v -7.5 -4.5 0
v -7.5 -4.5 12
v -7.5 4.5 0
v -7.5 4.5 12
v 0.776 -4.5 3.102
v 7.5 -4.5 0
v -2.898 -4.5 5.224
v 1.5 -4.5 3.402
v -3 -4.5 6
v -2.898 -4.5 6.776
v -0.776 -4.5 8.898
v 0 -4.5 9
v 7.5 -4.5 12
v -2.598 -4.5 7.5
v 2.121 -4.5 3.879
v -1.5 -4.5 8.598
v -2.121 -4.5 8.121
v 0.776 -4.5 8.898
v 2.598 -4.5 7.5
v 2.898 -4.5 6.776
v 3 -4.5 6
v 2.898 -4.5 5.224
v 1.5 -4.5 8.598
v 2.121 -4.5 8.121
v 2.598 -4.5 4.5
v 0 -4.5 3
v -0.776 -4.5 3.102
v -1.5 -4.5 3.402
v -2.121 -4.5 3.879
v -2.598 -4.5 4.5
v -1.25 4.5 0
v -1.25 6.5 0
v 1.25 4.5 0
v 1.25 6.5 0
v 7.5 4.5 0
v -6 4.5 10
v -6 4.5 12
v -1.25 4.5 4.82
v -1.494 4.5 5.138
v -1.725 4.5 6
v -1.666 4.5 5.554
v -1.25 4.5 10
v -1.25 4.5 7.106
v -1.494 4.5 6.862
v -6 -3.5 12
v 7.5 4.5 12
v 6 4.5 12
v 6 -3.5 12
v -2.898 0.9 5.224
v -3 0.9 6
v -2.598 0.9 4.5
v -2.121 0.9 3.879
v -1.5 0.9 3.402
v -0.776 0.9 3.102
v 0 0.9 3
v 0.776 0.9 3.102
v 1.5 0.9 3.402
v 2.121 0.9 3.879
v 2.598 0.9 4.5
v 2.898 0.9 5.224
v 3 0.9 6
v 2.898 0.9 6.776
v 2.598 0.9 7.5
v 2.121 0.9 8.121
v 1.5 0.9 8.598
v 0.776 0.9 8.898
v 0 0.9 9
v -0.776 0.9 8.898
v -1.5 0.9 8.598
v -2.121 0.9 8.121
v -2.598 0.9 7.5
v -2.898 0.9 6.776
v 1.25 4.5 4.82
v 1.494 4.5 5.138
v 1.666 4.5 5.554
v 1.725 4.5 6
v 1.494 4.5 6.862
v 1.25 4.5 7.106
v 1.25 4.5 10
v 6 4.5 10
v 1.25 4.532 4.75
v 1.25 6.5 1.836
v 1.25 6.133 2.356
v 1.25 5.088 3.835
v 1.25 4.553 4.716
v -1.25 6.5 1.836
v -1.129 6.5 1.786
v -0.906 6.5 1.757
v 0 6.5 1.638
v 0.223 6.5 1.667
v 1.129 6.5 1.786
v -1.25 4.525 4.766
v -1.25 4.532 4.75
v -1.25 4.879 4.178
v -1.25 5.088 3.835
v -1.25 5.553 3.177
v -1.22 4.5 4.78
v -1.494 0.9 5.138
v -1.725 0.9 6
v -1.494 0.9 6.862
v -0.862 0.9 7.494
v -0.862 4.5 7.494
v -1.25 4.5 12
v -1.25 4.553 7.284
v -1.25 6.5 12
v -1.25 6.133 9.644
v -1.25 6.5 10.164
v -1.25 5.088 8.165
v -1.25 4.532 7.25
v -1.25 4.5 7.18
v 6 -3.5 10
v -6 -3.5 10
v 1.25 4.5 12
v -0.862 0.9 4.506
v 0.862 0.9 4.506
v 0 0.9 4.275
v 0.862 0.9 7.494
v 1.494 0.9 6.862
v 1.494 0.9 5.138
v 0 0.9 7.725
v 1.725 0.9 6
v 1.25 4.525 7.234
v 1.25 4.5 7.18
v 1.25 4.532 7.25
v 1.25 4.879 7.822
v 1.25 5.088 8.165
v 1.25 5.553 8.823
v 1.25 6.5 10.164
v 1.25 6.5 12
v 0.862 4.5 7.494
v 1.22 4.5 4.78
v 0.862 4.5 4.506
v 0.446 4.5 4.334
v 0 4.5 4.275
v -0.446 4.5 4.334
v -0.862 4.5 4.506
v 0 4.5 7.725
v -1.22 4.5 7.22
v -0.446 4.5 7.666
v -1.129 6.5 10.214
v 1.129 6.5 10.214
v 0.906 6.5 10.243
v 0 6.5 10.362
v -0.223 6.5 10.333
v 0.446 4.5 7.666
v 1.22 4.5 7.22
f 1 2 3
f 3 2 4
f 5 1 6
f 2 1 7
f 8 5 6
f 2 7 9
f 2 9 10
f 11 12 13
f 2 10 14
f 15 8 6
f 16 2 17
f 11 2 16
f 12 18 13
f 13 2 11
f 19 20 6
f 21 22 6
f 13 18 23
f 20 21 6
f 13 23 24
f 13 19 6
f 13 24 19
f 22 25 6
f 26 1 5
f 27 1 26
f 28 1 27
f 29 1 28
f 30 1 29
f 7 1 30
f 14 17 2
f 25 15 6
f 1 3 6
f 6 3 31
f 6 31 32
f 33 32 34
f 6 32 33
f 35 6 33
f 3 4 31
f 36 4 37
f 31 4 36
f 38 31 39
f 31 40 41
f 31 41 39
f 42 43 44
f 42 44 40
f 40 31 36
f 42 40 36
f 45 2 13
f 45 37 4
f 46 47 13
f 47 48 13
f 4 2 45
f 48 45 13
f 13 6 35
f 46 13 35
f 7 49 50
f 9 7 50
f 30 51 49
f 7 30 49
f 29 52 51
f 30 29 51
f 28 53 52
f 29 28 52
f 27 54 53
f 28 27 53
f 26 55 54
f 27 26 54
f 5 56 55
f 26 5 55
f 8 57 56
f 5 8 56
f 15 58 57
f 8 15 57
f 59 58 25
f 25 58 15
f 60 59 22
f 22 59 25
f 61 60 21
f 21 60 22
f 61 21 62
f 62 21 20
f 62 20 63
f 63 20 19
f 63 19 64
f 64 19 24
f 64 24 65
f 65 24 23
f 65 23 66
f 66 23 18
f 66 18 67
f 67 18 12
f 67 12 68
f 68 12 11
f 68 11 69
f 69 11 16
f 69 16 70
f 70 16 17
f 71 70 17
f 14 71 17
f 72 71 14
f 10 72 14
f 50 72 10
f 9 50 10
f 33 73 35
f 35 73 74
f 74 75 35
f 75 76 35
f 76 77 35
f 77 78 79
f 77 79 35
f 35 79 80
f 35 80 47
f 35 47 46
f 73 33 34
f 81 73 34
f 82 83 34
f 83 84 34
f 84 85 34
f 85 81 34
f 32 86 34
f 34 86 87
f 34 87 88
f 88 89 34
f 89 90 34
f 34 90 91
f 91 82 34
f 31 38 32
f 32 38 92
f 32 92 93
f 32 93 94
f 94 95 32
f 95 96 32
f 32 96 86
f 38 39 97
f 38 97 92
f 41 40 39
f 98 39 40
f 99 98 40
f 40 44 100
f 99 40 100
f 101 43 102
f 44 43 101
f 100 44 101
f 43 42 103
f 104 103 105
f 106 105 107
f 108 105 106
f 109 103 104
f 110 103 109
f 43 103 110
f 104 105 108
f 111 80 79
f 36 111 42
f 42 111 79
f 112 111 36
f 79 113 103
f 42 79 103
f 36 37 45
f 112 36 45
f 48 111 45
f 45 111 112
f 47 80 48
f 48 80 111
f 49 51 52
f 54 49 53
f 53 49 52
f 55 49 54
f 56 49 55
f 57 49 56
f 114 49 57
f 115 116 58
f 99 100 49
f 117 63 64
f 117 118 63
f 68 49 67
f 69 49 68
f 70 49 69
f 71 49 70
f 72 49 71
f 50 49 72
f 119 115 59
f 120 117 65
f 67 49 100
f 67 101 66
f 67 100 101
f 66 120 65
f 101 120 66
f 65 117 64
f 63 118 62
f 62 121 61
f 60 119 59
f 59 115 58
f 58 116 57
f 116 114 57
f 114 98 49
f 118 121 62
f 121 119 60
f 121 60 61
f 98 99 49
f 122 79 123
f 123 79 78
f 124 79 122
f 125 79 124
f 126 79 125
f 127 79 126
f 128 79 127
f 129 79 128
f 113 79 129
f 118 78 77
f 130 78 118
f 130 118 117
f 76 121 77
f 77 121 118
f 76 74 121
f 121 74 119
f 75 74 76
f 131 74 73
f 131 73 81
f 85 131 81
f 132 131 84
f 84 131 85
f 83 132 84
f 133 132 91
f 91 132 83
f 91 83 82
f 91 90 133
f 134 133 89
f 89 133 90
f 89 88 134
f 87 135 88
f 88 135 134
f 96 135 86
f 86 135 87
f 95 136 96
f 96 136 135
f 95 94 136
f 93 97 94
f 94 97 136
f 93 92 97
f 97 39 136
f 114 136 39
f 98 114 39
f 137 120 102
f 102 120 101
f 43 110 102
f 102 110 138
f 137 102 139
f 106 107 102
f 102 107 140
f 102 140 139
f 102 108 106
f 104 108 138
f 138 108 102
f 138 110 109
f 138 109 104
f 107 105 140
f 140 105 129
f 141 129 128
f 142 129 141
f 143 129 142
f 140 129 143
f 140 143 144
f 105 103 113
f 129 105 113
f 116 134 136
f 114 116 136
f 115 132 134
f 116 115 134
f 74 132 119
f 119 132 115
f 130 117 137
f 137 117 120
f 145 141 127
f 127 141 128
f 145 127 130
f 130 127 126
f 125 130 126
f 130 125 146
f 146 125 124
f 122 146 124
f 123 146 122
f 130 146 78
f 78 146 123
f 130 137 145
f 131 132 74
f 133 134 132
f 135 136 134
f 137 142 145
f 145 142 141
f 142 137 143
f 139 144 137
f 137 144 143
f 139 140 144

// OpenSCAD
// file: configuration.scad
// Increase this if your slicer or printer make holes too tight.
extra_radius = 0.1;

// OD = outside diameter, corner to corner.
m3_nut_od = 6.1;
m3_nut_radius = m3_nut_od/2 + 0.2 + extra_radius;

// Major diameter of metric 3mm thread.
m3_major = 2.85;
m3_radius = m3_major/2 + extra_radius;
m3_wide_radius = m3_major/2 + extra_radius + 0.2;

// NEMA17 stepper motors.
motor_shaft_diameter = 5;
motor_shaft_radius = motor_shaft_diameter/2 + extra_radius;

// Frame brackets. M3x8mm screws work best with 3.6 mm brackets.
thickness = 3.6;

// OpenBeam or Misumi. Currently only 15x15 mm, but there is a plan
// to make models more parametric and allow 20x20 mm in the future.
extrusion = 15;

// HiWin, THK or Misumi
rail_width = 12;
rail_thickness = 8;
// main file
include <configuration.scad>;

_thickness = rail_thickness + 1; // 1mm thicker than linear rail.
width = extrusion;  // Same as vertical extrusion.
height = 12;

module railstop() {
  difference() {
    union() {
      cube([width, _thickness, height], center=true);
      translate([0, 2, 0])
        cube([2.5, _thickness, height], center=true);
    }
    translate([0, (_thickness - rail_thickness )/2, height - 2]) {
    	cube([rail_width , rail_thickness, height], center=true);
		}
    rotate([90, 0, 0]) {
      cylinder(r=m3_wide_radius, h=20, center=true, $fn=12);
      translate([0, 0, 3.6-_thickness/2]) {
        cylinder(r=3, h=10, $fn=24);
      }
      translate([0, 0, -_thickness/2]) scale([1, 1, -1])
        cylinder(r1=m3_wide_radius, r2=7, h=4, $fn=24);
    }		
  }
}

translate([0, 0, height/2]) railstop();
